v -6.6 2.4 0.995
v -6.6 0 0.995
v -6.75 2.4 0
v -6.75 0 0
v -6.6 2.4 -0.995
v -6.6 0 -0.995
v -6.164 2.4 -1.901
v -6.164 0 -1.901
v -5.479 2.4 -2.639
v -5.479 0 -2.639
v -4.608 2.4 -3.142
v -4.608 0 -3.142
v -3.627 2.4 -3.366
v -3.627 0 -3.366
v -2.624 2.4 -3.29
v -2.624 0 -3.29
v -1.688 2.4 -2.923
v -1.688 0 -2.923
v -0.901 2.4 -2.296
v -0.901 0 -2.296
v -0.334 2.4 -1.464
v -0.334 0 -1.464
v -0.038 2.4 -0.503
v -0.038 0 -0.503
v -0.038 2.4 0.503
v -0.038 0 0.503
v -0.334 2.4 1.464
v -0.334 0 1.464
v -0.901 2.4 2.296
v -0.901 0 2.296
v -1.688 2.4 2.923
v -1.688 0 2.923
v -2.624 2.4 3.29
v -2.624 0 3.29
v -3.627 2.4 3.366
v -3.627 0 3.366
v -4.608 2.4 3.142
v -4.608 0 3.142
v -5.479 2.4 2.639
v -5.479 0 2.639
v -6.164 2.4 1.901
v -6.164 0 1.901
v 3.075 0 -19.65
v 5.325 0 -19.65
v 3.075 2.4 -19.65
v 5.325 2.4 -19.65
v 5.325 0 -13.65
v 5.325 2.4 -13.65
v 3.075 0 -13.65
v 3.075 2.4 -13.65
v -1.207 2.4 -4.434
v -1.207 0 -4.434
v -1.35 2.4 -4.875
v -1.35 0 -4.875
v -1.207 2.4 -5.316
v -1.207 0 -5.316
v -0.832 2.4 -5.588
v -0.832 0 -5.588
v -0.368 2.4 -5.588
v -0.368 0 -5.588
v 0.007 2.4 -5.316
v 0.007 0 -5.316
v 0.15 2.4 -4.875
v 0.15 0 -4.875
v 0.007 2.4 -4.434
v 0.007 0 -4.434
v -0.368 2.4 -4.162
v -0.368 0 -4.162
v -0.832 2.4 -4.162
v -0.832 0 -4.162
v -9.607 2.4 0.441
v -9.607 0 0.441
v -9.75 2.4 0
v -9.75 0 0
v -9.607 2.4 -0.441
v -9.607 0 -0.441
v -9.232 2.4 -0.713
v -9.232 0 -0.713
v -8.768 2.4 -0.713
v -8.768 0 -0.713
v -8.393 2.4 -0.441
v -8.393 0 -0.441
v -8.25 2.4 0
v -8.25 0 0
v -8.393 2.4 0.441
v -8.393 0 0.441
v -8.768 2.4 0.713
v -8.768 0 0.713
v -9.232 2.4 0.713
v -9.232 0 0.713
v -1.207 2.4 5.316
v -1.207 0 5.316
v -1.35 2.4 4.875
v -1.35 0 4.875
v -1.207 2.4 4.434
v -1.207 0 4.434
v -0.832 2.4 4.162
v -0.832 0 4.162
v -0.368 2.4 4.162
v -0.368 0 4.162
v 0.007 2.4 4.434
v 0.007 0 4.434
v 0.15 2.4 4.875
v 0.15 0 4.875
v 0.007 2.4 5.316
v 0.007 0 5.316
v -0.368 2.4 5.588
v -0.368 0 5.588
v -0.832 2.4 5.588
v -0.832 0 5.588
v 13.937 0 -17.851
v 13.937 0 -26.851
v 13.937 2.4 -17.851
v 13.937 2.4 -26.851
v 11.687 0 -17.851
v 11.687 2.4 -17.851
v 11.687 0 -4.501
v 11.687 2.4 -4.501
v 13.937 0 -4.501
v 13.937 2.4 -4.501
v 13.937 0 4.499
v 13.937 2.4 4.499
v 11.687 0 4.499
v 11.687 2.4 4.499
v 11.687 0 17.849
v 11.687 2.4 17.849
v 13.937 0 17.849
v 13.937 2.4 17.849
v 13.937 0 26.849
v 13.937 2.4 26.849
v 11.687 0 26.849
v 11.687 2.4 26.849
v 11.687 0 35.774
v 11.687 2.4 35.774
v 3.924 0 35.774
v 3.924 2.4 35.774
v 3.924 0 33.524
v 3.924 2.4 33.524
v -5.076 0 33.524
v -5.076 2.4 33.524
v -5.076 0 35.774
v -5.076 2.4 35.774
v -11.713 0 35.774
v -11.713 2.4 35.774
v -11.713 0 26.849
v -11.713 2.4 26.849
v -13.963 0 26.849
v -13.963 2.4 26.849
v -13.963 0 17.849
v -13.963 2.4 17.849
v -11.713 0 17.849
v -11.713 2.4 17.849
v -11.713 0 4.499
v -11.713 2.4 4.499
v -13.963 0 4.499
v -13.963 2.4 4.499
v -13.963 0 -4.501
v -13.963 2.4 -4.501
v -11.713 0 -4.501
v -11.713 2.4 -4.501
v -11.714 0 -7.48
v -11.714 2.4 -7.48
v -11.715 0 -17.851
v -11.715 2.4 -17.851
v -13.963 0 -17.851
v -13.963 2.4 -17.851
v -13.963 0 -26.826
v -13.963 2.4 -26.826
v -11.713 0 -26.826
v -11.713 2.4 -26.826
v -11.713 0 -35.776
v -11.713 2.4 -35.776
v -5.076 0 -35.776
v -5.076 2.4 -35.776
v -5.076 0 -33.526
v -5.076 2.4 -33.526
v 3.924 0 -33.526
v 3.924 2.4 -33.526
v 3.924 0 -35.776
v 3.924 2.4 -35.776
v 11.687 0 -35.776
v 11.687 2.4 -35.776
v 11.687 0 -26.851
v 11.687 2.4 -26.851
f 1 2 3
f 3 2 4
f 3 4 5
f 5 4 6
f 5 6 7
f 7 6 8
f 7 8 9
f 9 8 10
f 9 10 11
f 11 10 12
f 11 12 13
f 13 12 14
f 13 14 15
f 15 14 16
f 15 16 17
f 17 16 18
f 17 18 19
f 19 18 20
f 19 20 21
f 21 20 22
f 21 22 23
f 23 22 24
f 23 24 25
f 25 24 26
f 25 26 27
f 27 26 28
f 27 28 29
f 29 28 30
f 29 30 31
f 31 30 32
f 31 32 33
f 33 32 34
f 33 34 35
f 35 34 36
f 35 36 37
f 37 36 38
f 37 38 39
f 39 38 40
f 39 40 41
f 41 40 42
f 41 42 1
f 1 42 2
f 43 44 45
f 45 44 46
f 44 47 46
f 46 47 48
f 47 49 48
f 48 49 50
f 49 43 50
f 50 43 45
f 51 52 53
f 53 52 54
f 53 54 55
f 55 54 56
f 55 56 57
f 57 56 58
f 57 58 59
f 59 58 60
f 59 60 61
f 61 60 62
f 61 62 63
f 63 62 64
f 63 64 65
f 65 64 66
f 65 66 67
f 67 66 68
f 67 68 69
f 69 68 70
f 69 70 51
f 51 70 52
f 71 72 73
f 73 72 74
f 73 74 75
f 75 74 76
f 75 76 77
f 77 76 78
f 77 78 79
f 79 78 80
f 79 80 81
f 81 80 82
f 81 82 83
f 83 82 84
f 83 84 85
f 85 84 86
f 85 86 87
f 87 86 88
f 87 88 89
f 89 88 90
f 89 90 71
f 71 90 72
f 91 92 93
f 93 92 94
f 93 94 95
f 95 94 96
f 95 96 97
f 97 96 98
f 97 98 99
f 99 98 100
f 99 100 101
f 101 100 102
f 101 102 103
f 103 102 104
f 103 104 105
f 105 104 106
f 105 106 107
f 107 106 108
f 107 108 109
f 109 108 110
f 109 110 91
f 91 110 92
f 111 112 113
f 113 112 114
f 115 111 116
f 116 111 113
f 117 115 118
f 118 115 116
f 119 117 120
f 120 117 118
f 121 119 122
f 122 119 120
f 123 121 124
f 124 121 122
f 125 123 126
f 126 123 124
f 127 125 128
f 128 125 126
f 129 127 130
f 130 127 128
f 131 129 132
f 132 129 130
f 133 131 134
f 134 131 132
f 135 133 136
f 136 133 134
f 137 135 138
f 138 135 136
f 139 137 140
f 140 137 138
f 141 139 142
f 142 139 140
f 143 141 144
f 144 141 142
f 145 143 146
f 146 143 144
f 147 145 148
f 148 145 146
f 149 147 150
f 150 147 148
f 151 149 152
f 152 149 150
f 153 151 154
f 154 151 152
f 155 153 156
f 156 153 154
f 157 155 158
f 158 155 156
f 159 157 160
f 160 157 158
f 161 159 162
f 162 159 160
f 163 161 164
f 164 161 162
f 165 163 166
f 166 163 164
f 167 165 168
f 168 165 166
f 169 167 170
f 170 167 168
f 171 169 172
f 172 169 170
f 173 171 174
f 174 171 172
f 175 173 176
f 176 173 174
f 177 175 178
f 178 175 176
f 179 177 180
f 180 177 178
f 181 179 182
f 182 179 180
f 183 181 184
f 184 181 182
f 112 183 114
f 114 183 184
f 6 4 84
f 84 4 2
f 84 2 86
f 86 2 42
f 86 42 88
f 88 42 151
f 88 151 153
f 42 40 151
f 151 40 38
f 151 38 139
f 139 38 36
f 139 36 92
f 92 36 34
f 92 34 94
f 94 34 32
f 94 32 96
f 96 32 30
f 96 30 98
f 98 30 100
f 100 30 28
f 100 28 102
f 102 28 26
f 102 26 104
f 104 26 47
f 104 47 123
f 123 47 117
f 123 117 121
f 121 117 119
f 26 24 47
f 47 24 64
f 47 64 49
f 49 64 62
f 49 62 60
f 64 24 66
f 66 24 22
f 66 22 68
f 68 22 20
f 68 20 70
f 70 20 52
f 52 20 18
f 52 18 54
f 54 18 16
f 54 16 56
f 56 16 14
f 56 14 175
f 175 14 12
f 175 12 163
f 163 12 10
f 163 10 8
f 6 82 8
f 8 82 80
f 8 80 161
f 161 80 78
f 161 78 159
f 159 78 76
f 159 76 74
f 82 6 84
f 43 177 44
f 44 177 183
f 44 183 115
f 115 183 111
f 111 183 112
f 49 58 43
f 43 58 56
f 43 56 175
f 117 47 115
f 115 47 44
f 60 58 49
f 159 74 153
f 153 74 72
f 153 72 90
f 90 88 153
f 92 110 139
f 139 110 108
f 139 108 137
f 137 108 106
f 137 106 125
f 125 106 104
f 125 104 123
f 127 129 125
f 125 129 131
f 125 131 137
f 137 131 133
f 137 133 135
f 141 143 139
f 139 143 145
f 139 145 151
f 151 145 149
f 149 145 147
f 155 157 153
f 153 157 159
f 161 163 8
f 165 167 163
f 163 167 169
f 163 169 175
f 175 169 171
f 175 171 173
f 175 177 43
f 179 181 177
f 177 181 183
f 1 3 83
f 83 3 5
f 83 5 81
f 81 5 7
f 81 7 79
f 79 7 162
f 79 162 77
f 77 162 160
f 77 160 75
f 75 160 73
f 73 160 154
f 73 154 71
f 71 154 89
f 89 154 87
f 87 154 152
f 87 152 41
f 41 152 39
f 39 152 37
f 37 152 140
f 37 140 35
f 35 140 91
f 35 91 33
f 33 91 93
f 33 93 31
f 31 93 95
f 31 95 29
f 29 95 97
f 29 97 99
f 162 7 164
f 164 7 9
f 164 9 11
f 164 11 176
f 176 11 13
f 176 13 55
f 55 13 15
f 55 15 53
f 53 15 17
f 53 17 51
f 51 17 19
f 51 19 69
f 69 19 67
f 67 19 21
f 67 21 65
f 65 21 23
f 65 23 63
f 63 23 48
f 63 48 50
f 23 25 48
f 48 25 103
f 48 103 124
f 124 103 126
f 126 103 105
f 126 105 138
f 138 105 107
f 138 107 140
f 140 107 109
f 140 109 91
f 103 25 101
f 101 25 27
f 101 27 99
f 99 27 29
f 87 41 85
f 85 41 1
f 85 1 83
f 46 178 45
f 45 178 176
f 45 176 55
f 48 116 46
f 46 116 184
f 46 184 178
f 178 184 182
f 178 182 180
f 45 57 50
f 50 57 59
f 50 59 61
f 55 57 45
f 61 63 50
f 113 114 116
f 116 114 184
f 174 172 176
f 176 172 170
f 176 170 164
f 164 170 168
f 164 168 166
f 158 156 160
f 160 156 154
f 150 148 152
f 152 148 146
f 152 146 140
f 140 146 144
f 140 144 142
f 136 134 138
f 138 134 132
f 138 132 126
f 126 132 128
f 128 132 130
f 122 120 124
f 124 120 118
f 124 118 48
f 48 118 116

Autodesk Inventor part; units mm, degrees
ref_plane "YZ Plane" through (0, 0, 0) normal (1, 0, 0) x (0, 1, 0)
ref_plane "XZ Plane" through (0, 0, 0) normal (0, 1, 0) x (-1, 0, 0)
ref_plane "XY Plane" through (0, 0, 0) normal (0, 0, 1) x (1, 0, 0)
sketch "Boceto1" plane through (0, 0, 0) normal (0, 1, 0) x (-1, 0, 0)
  line L0 (-13.9366, -26.8506) -> (-11.6866, -26.8506)
  line L1 (-11.6866, -26.8506) -> (-11.6866, -35.7756)
  line L2 (-11.6866, -35.7756) -> (-3.9241, -35.7756)
  line L3 (-3.9241, -35.7756) -> (-3.9241, -33.5256)
  line L4 (-3.9241, -33.5256) -> (5.0759, -33.5256)
  line L5 (5.0759, -33.5256) -> (5.0759, -35.7756)
  line L6 (5.0759, -35.7756) -> (6.7964, -35.7756)
  line L7 (6.7964, -35.7756) -> (11.7134, -35.7756)
  line L8 (11.7134, -35.7756) -> (11.7134, -35.375)
  line L9 (11.7134, -35.375) -> (11.7134, -33.5256)
  line L10 (11.7134, -33.5256) -> (11.7134, -26.8257)
  line L11 (11.7134, -26.8257) -> (13.9634, -26.8257)
  line L12 (13.9634, -26.8257) -> (13.9634, -17.8506)
  line L13 (13.9637, -17.8506) -> (11.7151, -17.8506)
  line L14 (11.7151, -17.8506) -> (11.7144, -7.4795)
  line L15 (11.7144, -7.4795) -> (11.7134, -4.5006)
  line L16 (11.7118, -4.5504) -> (11.7134, -4.5006)
  line L17 (11.7134, -4.5006) -> (13.9634, -4.5006)
  line L18 (13.9634, -4.5006) -> (13.9634, 4.4994)
  line L19 (13.9634, 4.4994) -> (11.7134, 4.4994)
  line L20 (11.7134, 4.4994) -> (11.7134, 17.8494)
  line L21 (11.7134, 17.8494) -> (13.9634, 17.8494)
  line L22 (13.9634, 17.8494) -> (13.9634, 26.8494)
  line L23 (13.9634, 26.8494) -> (11.7134, 26.8494)
  line L24 (11.7134, 26.8494) -> (11.7134, 33.5244)
  line L25 (11.7134, 33.5244) -> (11.7134, 35.7744)
  line L26 (11.7134, 35.7744) -> (5.0759, 35.7744)
  line L27 (5.0759, 35.7744) -> (5.0759, 33.5244)
  line L28 (5.0759, 33.5244) -> (-2.6866, 33.5244)
  line L29 (-2.6866, 33.5244) -> (-3.9241, 33.5244)
  line L30 (-3.9241, 33.5244) -> (-3.9241, 35.7744)
  line L31 (-3.9241, 35.7744) -> (-11.6866, 35.7744)
  line L32 (-11.6866, 35.7744) -> (-11.6866, 26.8494)
  line L33 (-11.6866, 26.8494) -> (-13.9366, 26.8494)
  line L34 (-13.9366, 26.8494) -> (-13.9366, 17.8494)
  line L35 (-13.9366, 17.8494) -> (-11.6866, 17.8494)
  line L36 (-11.6866, 17.8494) -> (-11.6866, 4.4994)
  line L37 (-11.6866, 4.4994) -> (-13.9366, 4.4994)
  line L38 (-13.9366, 4.4994) -> (-13.9366, -4.5006)
  line L39 (-13.9366, -4.5006) -> (-11.6866, -4.5006)
  line L40 (-11.6866, -4.5006) -> (-11.6866, -17.8506)
  line L41 (-11.6866, -17.8506) -> (-13.1866, -17.8506)
  line L42 (-13.1866, -17.8506) -> (-13.9366, -17.8506)
  line L43 (-13.9366, -17.8506) -> (-13.9366, -26.8506)
  line L44 (-12.075, -17.85) -> (-14.325, -17.85)
  line L45 (4.6875, 33.525) -> (3.4125, 33.525)
  line L46 (-3.075, -13.65) -> (-3.075, -19.65)
  line L47 (-3.075, -19.65) -> (-5.325, -19.65)
  line L48 (-5.325, -19.65) -> (-5.325, -13.65)
  line L49 (-5.325, -13.65) -> (-3.075, -13.65)
  circle A0 centre (0.6, 4.875) radius 0.75
  circle A1 centre (3.375, 0) radius 3.375
  circle A2 centre (9, 0) radius 0.75
  circle A3 centre (0.6, -4.875) radius 0.75
  point P0 (0, 0)
extrude "Extrusión1" add sketch "Boceto1" along normal blind 2.4
properties part number "costat3"
